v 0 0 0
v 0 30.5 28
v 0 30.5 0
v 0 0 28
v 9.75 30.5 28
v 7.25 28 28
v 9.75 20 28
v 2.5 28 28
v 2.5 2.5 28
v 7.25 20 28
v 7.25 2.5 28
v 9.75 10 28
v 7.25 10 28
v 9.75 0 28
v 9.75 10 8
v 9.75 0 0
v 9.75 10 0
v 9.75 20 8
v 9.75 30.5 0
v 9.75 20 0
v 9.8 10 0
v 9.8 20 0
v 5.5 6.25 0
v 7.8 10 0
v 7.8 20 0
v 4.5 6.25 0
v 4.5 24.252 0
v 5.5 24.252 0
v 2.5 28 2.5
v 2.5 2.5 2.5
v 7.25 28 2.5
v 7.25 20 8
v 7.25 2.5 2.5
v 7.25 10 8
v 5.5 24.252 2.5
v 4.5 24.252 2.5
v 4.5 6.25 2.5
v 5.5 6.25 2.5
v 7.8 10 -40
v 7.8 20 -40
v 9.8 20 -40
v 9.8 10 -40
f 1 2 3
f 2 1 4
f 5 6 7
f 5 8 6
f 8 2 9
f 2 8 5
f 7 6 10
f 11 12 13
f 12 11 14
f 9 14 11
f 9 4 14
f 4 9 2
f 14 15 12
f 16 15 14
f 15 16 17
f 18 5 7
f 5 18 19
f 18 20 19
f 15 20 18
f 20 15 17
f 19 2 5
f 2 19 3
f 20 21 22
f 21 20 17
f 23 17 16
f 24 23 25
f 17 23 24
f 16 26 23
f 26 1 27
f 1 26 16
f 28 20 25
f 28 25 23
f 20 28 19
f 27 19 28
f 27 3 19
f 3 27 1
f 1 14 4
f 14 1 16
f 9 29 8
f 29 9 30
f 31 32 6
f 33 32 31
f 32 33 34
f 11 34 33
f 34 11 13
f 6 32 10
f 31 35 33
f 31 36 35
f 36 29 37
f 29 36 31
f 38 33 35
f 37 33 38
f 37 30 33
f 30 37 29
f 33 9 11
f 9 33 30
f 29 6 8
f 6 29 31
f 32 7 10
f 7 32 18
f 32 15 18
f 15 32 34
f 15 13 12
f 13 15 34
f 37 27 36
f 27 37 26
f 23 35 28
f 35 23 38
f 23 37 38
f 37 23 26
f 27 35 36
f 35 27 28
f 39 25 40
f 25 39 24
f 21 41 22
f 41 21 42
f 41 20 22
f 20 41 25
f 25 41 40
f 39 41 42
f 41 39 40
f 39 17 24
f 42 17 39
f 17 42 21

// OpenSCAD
// original design by devzero, published Oct 19, 2013
// https://www.thingiverse.com/thing:168581
// modified by Hao Chen Oct 11 2017

board_width=25.5;
board_height=23;
board_thick=4.75;
cable_width=18;
cable_thick=1;
side_cover=7.5;
camera_hole_width=10;
camera_hole_height=5.5;
screw_hole_r=2.65;
padding=2.5;
d=0.001;
mount_offset=2*padding+board_width;
mount_thickness=8;


//camera holder
difference(){
	cube([board_thick+2*padding, board_width+2*padding, board_height+2*padding]);
	//main compartment
	translate([padding, padding, padding]) cube([board_thick, board_width, board_height+padding+d]);
	//front camera slot
	translate([board_thick+padding-d, padding+side_cover, padding+camera_hole_height]) cube([padding+2*d, camera_hole_width, board_height+padding-camera_hole_height+d]);
	//hole for cable in the bottom
	translate([padding+2,padding+(board_width-cable_width)/2,0]) cube([cable_thick, cable_width+2*d, padding+2*d]);
}

//handle

translate([7.8,10,-40])cube([2,10, 40]);
